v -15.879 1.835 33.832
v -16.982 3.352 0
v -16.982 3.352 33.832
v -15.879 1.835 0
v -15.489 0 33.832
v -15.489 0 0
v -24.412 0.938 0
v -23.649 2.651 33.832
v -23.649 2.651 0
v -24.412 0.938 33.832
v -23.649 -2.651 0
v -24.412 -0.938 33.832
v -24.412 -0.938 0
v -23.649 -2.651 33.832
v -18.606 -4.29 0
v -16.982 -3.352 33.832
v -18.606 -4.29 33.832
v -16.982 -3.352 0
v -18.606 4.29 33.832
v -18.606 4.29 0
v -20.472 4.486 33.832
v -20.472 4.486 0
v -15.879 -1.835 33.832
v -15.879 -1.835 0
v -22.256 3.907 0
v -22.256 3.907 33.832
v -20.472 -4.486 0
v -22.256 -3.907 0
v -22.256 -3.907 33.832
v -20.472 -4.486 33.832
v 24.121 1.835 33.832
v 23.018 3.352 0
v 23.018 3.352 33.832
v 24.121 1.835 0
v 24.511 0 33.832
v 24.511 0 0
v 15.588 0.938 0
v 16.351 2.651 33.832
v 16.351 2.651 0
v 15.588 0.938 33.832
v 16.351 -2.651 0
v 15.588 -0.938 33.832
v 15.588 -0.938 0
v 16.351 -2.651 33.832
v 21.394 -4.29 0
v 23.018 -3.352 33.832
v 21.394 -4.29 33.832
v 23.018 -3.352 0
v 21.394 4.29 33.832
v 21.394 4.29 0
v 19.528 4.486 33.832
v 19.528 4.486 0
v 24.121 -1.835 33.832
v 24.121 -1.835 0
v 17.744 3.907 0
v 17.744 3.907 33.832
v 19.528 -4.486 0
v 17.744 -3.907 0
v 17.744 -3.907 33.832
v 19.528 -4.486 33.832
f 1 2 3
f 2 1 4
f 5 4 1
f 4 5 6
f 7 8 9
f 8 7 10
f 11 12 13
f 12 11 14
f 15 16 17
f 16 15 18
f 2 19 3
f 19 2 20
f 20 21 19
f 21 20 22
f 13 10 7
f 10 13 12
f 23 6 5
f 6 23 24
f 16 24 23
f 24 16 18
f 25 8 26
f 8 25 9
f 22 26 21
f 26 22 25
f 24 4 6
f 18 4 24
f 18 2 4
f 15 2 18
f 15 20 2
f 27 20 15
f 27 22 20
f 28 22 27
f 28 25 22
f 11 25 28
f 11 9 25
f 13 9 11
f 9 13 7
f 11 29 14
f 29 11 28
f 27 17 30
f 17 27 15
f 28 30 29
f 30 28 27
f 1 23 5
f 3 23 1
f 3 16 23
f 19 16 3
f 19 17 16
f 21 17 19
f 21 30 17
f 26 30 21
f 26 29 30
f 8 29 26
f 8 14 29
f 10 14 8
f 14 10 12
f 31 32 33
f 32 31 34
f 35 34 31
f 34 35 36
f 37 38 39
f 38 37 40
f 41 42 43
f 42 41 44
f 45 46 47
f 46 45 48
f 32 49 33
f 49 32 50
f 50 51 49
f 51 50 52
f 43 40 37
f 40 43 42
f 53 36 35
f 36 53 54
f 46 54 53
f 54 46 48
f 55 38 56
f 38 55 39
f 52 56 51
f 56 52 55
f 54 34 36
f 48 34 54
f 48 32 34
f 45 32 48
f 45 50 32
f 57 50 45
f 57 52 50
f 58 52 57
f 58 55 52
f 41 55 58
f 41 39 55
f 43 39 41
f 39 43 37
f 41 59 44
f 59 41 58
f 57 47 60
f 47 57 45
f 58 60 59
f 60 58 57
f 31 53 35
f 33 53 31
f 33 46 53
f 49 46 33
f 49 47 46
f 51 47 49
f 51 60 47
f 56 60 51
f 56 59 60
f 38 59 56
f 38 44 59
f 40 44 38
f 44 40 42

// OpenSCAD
/* doodle-meta {"version":1,"parameters":{"bend_radius":{"label":"Bend Radius","description":"Radius of the semi-circular top bend","unit":"mm","feature":"bend"},"leg_length":{"label":"Leg Length","description":"Length of the straight legs extending downwards","unit":"mm","feature":"legs"},"rod_diameter":{"label":"Rod Diameter","description":"Diameter of the circular cross-section","unit":"mm","feature":"cross_section"}},"features":{"bend":{"kind":"dimension","axis":"z","label":"Bend Radius"},"legs":{"kind":"dimension","axis":"z","label":"Leg Length"},"cross_section":{"kind":"dimension","axis":"x","label":"Rod Diameter"}}} */

// Parameters
bend_radius = 20;
leg_length = 33.83176008687661;
rod_diameter = 9.021802689833764;

// Derived dimensions
rod_radius = rod_diameter / 2;
total_height = leg_length + bend_radius + rod_radius; // 30 + 20 + 4 = 54
total_width = 2 * bend_radius + rod_diameter; // 40 + 8 = 48

// Main Body Construction
// 1. Left Leg
// Cylinder centered at X=-bend_radius, Y=0.
// Extends from Z=0 to Z=leg_length.
translate([-bend_radius, 0, leg_length/2])
    cylinder(h=leg_length, r=rod_radius, center=true);

// 2. Right Leg
// Cylinder centered at X=bend_radius, Y=0.
// Extends from Z=0 to Z=leg_length.
translate([bend_radius, 0, leg_length/2])
    cylinder(h=leg_length, r=rod_radius, center=true);

// 3. Semi-circular Bend
// The bend connects the tops of the legs.
// Center of the bend arc is at (0, 0, leg_length).
// We create a torus segment.
// Torus major radius = bend_radius, minor radius = rod_radius.
// We need the upper half (Z >= leg_length).
// A full torus centered at (0,0,leg_length) in the XY plane (rotated 90 deg around X)
// would have its tube centerline in the XZ plane.
// Standard torus: axis is Z. Tube centerline is in XY plane.
// We want the tube centerline to be in the XZ plane (vertical arc).
// So we rotate the torus 90 degrees around X.
// Then we intersect with a cube to keep only the top half (Z >= leg_length).

translate([0, 0, leg_length])
    rotate([90, 0, 0])
    intersection() {
        torus(r=bend_radius, r2=rod_radius);
        // Keep only the part where Z >= 0 (relative to the torus center)
        // Since we rotated 90 around X, the "up" direction of the torus tube
        // corresponds to +Z in the global frame if we think about the arc.
        // Actually, let's verify.
        // Torus default: ring in XY, tube around it.
        // Rotate 90 around X: Ring moves to XZ plane.
        // The "top" of the ring (positive Z) is what we want.
        // So we intersect with a cube covering Z >= 0.
        // The cube needs to be large enough to cover the torus but cut at Z=0 local.
        translate([0, 0, total_height]) // Move cube up so its bottom is at Z=0 local
            cube([total_width + rod_diameter, total_width + rod_diameter, total_height], center=true);
    }

// Helper module for Torus
module torus(r, r2) {
    rotate_extrude(convexity=10)
        translate([r, 0, 0])
        circle(r=r2);
}
